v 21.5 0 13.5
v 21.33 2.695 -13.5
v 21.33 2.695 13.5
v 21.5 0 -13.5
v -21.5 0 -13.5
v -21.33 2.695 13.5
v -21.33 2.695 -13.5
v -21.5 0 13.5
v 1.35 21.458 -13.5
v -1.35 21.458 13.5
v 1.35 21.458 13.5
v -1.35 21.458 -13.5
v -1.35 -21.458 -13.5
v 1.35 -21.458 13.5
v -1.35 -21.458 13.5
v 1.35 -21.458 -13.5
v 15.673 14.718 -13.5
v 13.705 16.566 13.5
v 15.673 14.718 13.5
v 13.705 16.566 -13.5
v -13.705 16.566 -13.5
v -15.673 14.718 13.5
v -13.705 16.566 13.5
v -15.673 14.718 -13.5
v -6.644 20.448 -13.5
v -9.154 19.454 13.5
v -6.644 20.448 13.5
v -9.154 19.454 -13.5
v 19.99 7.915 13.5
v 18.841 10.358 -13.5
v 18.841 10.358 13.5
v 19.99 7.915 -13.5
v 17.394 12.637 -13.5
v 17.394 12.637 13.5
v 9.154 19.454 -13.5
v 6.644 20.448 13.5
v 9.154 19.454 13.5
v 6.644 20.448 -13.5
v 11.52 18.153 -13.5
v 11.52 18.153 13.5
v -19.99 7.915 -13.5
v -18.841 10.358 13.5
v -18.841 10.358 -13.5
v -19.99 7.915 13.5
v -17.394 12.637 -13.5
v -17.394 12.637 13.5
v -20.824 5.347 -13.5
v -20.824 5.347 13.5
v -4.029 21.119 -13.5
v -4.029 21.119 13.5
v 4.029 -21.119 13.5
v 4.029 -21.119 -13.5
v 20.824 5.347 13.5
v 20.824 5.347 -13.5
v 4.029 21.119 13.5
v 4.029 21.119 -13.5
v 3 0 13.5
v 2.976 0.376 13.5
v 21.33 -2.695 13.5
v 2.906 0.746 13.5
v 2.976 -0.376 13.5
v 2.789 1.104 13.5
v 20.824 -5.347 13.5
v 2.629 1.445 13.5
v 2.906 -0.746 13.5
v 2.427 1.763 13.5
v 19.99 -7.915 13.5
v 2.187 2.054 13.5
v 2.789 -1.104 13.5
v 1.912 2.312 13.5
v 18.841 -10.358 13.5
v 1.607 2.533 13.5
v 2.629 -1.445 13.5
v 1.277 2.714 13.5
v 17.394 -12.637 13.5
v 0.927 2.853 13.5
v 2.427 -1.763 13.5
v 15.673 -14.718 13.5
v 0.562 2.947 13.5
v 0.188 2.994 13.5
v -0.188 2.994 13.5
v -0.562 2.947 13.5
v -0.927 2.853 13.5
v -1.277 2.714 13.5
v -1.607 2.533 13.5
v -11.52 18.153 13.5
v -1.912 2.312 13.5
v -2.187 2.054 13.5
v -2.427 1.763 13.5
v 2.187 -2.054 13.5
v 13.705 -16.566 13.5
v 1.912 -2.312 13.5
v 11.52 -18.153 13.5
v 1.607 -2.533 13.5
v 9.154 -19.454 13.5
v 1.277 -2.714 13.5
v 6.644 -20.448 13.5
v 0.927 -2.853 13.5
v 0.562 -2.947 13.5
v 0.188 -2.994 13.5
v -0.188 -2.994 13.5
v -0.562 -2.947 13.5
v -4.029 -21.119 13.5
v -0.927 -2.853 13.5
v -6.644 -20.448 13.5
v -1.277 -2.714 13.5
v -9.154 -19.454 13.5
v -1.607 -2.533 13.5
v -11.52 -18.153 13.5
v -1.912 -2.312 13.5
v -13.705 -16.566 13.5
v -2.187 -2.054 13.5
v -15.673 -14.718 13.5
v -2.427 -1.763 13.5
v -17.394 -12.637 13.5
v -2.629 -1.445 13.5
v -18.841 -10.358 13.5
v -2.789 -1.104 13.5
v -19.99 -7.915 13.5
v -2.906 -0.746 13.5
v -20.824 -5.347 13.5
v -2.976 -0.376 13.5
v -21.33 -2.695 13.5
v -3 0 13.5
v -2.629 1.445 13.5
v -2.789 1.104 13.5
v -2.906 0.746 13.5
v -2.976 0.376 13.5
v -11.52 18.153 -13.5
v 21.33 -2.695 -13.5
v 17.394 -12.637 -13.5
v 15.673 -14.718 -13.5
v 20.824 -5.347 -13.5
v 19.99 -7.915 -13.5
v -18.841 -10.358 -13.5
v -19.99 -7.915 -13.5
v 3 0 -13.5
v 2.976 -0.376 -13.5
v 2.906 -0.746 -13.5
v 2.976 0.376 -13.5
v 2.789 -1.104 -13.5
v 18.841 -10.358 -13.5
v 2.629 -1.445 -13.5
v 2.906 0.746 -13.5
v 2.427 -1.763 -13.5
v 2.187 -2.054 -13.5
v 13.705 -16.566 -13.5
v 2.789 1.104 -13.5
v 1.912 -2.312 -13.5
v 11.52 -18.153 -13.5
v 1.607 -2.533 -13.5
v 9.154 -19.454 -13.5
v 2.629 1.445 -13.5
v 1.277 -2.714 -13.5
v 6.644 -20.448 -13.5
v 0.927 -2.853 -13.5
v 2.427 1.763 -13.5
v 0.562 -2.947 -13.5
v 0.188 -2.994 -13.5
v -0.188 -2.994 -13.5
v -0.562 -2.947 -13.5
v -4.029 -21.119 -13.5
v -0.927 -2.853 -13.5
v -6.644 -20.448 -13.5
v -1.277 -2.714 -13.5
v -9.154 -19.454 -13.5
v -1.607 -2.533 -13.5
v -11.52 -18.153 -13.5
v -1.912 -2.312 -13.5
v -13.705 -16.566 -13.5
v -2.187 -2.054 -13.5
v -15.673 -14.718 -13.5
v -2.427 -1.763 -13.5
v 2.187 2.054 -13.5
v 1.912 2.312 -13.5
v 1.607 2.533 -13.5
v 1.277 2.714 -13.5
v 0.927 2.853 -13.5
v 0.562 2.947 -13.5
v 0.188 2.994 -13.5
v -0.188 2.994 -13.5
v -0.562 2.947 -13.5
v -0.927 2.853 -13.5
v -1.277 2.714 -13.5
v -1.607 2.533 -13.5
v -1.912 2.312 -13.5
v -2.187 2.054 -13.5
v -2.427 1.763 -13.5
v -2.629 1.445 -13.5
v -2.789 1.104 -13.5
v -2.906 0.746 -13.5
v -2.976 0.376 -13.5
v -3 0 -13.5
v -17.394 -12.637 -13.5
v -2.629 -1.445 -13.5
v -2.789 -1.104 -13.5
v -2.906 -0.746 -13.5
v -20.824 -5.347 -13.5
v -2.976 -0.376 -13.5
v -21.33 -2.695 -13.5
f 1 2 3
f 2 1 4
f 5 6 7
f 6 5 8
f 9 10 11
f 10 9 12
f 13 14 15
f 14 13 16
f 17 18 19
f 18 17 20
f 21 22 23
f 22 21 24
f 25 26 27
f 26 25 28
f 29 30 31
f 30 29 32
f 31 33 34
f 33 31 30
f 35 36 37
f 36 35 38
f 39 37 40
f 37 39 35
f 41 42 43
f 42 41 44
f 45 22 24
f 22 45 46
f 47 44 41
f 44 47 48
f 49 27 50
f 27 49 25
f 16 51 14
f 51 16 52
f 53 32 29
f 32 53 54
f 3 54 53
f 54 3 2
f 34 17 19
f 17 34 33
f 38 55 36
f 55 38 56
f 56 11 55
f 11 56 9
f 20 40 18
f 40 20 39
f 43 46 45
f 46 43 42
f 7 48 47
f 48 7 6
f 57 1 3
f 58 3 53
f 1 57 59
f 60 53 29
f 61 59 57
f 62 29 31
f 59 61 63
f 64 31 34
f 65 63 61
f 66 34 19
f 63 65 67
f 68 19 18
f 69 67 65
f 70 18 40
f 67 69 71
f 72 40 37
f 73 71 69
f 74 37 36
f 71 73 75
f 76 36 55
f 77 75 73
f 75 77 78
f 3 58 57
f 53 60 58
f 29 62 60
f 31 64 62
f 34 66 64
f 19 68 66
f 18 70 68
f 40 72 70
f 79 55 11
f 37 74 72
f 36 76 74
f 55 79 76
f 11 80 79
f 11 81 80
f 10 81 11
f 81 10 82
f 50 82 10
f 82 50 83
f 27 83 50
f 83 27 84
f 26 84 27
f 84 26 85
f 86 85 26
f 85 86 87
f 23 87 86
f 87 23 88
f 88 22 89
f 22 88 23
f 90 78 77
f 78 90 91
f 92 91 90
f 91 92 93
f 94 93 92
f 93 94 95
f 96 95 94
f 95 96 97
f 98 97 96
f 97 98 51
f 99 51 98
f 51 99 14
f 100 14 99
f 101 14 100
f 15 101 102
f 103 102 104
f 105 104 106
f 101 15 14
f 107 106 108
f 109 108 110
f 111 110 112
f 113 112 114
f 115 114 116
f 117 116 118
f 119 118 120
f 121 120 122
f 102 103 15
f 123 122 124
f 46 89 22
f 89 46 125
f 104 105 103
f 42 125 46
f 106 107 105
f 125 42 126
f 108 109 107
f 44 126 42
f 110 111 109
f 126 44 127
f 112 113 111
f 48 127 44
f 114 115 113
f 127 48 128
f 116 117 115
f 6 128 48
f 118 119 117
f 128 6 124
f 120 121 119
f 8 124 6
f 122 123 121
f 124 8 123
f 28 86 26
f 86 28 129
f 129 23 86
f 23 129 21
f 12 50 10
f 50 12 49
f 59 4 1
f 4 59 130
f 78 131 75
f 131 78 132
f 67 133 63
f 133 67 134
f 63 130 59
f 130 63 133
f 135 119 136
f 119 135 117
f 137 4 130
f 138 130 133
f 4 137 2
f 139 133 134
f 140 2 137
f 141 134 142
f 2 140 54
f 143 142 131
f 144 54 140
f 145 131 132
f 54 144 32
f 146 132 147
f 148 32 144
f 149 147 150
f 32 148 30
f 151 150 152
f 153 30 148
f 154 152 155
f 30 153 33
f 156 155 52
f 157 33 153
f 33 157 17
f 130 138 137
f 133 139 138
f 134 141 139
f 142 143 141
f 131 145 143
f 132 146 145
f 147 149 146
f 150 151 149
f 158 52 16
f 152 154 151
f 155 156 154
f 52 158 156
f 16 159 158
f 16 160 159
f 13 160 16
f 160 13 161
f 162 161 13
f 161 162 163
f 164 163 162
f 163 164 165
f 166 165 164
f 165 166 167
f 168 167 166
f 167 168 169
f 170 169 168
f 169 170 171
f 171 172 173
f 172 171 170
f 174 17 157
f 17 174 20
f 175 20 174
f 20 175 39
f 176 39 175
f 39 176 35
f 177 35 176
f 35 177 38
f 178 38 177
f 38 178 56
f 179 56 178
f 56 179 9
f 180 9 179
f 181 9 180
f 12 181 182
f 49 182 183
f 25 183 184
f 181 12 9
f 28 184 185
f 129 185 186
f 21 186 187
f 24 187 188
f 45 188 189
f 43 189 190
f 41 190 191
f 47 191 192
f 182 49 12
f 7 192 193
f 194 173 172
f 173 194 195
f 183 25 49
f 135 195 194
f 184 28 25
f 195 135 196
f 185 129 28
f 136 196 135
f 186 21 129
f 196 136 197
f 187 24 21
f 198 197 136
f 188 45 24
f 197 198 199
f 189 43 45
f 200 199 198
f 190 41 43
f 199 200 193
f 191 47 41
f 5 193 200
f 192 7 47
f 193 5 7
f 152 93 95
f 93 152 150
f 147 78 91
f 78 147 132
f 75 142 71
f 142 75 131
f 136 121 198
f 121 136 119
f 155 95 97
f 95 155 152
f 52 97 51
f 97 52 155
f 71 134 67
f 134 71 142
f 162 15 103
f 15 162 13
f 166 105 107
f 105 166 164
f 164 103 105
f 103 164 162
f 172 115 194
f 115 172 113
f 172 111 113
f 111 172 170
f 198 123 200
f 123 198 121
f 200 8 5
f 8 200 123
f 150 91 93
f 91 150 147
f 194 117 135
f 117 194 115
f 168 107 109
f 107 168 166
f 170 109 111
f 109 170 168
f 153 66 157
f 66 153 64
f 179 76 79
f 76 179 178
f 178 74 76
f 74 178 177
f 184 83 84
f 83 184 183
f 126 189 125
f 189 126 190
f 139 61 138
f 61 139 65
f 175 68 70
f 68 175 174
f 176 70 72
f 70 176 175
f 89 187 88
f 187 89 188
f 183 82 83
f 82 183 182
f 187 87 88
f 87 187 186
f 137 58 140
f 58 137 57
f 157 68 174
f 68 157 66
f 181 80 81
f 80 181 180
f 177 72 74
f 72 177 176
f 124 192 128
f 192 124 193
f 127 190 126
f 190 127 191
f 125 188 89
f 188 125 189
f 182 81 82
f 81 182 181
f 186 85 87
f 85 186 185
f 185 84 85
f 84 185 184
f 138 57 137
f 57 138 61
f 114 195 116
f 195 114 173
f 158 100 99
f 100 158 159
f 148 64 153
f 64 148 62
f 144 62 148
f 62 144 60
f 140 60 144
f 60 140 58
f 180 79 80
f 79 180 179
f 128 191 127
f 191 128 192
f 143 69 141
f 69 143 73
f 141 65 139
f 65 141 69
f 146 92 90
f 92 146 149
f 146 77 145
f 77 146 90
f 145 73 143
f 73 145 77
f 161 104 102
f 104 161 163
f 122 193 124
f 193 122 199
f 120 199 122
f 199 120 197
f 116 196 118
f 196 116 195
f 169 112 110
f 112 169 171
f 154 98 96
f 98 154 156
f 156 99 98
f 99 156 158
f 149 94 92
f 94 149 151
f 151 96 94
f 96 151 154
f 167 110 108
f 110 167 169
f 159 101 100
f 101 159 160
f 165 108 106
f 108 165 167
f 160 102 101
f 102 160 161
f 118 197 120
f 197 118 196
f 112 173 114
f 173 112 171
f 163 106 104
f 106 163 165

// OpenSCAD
$fn = 50;


difference() {
	union() {
		translate(v = [0, 0, -13.5000000000]) {
			cylinder(h = 27, r = 21.5000000000);
		}
	}
	union() {
		translate(v = [0, 0, -100.0000000000]) {
			cylinder(h = 200, r = 3);
		}
	}
}
